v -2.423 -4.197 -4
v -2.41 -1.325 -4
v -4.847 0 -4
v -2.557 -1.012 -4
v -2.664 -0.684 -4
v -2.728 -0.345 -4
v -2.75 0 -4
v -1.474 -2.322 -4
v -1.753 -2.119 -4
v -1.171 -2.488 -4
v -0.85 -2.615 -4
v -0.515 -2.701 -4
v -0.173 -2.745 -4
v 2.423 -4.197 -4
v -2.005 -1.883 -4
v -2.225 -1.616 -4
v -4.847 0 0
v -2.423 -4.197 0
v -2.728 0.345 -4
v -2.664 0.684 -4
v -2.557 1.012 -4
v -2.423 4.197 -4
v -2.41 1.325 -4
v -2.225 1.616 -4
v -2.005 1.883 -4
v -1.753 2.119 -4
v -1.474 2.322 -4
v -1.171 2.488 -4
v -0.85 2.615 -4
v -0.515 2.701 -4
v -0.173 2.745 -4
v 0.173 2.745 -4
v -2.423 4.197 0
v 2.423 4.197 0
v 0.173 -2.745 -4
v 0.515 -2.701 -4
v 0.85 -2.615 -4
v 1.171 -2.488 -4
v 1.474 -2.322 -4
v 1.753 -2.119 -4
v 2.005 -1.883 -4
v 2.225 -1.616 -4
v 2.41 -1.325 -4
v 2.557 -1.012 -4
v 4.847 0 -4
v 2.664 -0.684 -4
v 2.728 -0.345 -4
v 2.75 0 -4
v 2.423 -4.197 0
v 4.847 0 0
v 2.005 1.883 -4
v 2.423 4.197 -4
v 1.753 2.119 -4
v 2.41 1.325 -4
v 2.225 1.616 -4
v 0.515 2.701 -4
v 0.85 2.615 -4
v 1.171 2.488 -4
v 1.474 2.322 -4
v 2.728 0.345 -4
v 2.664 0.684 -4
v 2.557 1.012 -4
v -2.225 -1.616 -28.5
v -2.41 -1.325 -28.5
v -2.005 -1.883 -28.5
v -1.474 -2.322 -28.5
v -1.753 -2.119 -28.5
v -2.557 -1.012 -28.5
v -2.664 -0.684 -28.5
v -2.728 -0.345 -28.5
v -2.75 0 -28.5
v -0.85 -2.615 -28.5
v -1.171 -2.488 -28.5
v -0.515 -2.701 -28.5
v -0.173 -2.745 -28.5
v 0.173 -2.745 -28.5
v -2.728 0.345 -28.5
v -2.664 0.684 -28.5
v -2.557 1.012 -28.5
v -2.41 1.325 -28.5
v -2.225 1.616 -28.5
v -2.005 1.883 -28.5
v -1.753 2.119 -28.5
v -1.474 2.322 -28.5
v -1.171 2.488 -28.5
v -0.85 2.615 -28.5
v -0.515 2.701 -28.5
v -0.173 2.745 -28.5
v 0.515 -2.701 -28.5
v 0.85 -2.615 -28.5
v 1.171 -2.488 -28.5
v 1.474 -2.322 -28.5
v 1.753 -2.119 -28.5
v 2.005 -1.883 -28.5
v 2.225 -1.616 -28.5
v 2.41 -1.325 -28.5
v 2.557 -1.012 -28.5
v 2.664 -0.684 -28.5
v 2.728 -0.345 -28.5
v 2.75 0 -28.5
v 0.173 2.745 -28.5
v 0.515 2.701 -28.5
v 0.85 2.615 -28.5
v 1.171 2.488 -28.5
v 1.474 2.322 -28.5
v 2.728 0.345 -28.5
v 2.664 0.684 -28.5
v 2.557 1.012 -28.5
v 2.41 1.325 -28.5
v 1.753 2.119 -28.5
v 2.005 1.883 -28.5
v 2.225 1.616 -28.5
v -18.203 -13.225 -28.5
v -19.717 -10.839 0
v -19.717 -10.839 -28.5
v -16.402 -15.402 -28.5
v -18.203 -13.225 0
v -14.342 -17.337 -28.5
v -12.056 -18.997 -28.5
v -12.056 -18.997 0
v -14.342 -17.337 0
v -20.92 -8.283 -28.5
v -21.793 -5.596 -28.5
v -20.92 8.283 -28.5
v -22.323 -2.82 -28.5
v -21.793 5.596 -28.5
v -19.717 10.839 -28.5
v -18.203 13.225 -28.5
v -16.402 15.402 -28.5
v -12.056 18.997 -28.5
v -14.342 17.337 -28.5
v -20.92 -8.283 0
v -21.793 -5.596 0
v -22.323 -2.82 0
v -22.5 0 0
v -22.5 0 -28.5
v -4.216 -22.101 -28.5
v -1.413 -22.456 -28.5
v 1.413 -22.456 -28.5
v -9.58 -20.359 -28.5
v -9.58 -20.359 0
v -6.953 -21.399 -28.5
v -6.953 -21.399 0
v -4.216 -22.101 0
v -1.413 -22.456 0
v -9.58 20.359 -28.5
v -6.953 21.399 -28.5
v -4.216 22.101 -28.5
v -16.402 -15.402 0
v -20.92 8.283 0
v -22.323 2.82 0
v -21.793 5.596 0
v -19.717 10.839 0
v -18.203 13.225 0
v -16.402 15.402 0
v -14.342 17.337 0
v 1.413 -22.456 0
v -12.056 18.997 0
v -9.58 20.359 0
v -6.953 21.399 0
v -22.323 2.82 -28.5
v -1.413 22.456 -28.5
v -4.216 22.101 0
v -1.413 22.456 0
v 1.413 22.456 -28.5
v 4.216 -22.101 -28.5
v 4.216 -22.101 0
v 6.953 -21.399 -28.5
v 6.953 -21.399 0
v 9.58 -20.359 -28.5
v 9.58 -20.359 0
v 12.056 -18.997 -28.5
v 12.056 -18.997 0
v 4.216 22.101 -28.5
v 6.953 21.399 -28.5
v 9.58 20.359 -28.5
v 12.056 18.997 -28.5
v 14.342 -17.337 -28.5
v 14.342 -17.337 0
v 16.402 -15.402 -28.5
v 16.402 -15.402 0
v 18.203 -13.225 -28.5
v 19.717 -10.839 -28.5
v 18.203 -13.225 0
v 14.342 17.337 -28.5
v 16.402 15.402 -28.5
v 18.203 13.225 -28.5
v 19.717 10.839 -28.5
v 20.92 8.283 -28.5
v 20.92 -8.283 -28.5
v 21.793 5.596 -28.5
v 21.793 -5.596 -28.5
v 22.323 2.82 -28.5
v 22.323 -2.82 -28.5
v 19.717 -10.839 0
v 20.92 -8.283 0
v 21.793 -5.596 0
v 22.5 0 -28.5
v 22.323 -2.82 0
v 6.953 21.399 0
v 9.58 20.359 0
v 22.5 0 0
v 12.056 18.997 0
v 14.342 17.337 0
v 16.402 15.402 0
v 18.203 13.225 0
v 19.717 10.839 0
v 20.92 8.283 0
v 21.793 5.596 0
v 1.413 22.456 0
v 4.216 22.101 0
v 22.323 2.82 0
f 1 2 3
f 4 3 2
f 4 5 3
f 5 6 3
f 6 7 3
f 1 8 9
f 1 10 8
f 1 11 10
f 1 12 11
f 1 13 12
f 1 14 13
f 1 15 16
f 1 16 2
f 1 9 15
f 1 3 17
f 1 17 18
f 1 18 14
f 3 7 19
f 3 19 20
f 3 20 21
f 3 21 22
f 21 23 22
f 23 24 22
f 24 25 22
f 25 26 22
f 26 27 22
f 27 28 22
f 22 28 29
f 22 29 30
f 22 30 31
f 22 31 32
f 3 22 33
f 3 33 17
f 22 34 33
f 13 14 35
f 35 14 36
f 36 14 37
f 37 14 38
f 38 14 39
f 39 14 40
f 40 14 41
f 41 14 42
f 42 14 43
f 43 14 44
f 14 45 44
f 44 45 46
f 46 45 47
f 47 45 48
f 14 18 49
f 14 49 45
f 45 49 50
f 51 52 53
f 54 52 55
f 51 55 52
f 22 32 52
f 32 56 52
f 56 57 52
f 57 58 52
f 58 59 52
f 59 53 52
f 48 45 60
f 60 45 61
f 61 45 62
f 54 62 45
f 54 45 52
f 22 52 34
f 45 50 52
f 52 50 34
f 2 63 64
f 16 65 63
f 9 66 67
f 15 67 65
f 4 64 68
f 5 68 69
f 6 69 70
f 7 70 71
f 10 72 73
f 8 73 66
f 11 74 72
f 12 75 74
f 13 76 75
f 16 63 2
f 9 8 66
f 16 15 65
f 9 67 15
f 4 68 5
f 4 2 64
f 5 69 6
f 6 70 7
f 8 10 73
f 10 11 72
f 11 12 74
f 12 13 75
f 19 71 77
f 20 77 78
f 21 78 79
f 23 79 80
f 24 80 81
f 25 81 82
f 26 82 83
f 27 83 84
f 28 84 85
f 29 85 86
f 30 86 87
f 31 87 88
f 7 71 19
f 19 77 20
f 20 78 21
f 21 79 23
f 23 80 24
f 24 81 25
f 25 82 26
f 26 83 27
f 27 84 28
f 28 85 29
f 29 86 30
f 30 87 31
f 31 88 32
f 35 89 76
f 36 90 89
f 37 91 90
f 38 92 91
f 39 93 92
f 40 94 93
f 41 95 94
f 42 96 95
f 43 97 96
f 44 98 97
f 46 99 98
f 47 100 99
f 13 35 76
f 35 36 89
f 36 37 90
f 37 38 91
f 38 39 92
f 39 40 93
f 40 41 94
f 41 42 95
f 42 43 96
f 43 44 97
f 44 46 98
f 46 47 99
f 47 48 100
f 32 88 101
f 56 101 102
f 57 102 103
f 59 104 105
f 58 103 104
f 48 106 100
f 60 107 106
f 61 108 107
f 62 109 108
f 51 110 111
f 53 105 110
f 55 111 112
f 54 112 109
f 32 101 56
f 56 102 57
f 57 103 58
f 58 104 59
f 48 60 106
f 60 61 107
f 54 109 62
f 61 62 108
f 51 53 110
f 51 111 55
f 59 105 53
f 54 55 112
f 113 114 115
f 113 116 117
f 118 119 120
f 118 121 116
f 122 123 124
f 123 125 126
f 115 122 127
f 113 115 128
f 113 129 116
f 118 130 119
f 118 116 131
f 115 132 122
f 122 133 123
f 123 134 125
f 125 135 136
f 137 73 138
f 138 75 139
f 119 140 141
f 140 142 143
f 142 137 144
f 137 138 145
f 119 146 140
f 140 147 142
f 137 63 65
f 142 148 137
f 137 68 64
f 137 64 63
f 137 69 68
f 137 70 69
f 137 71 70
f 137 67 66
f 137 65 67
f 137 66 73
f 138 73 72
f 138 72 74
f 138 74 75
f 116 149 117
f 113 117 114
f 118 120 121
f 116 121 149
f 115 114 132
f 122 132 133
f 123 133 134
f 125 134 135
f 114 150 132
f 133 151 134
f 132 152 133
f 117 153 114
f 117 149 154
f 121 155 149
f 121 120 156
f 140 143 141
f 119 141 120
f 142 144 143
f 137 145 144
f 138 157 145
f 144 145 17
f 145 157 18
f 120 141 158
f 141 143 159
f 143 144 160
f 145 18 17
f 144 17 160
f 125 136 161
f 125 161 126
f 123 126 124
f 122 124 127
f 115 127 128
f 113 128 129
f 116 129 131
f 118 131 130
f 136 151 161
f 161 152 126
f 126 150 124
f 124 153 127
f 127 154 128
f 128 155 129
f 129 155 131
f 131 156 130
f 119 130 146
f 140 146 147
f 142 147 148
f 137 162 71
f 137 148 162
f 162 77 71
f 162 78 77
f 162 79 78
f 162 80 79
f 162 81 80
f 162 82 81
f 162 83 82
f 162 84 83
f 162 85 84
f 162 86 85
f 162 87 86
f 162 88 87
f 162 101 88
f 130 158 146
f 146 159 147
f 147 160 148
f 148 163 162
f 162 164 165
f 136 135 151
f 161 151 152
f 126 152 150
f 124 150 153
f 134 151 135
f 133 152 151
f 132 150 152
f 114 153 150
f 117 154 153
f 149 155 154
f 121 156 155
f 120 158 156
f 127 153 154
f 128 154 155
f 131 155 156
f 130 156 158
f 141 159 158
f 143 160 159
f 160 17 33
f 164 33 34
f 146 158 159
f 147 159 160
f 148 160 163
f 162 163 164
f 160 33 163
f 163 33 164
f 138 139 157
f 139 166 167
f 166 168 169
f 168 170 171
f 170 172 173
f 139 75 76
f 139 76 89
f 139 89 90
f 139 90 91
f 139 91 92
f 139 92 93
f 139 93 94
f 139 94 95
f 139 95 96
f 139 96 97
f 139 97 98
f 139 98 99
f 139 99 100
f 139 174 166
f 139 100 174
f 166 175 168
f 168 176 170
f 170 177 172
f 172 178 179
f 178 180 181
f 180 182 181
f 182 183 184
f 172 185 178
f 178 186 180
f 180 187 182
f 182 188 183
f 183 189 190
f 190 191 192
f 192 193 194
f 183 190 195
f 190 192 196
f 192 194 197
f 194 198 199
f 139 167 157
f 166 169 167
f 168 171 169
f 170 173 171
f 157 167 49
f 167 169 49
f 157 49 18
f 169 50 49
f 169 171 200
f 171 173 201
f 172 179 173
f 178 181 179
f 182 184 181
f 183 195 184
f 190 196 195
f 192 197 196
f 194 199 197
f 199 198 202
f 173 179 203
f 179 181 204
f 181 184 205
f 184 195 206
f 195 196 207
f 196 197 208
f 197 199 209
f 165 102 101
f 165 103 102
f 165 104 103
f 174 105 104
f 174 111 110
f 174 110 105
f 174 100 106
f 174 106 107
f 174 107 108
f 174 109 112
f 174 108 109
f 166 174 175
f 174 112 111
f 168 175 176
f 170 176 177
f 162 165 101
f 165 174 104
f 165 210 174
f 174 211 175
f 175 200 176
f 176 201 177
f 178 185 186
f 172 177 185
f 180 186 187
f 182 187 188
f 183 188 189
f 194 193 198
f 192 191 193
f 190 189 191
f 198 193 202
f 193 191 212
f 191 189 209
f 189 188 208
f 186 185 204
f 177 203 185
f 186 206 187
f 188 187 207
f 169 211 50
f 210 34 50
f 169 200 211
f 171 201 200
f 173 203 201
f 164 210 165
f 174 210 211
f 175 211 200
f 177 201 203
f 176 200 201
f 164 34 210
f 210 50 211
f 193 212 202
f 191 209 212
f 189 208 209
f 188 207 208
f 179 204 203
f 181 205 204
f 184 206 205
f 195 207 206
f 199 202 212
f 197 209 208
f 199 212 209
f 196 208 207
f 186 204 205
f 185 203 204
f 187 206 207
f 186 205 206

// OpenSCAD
$fn = 50;


difference() {
	union() {
		translate(v = [0, 0, -28.5000000000]) {
			cylinder(h = 28.5000000000, r = 22.5000000000);
		}
	}
	union() {
		translate(v = [0, 0, 0]) {
			rotate(a = [0, 0, 0]) {
				difference() {
					union() {
						translate(v = [0, 0, -4]) {
							linear_extrude(height = 4) {
								polygon(points = [[4.8468000000, 0.0000000000], [2.4234000000, 4.1974519271], [-2.4234000000, 4.1974519271], [-4.8468000000, 0.0000000000], [-2.4234000000, -4.1974519271], [2.4234000000, -4.1974519271]]);
							}
						}
					}
					union();
				}
			}
		}
		#translate(v = [0, 0, -100.0000000000]) {
			cylinder(h = 200, r = 2.7500000000);
		}
	}
}
